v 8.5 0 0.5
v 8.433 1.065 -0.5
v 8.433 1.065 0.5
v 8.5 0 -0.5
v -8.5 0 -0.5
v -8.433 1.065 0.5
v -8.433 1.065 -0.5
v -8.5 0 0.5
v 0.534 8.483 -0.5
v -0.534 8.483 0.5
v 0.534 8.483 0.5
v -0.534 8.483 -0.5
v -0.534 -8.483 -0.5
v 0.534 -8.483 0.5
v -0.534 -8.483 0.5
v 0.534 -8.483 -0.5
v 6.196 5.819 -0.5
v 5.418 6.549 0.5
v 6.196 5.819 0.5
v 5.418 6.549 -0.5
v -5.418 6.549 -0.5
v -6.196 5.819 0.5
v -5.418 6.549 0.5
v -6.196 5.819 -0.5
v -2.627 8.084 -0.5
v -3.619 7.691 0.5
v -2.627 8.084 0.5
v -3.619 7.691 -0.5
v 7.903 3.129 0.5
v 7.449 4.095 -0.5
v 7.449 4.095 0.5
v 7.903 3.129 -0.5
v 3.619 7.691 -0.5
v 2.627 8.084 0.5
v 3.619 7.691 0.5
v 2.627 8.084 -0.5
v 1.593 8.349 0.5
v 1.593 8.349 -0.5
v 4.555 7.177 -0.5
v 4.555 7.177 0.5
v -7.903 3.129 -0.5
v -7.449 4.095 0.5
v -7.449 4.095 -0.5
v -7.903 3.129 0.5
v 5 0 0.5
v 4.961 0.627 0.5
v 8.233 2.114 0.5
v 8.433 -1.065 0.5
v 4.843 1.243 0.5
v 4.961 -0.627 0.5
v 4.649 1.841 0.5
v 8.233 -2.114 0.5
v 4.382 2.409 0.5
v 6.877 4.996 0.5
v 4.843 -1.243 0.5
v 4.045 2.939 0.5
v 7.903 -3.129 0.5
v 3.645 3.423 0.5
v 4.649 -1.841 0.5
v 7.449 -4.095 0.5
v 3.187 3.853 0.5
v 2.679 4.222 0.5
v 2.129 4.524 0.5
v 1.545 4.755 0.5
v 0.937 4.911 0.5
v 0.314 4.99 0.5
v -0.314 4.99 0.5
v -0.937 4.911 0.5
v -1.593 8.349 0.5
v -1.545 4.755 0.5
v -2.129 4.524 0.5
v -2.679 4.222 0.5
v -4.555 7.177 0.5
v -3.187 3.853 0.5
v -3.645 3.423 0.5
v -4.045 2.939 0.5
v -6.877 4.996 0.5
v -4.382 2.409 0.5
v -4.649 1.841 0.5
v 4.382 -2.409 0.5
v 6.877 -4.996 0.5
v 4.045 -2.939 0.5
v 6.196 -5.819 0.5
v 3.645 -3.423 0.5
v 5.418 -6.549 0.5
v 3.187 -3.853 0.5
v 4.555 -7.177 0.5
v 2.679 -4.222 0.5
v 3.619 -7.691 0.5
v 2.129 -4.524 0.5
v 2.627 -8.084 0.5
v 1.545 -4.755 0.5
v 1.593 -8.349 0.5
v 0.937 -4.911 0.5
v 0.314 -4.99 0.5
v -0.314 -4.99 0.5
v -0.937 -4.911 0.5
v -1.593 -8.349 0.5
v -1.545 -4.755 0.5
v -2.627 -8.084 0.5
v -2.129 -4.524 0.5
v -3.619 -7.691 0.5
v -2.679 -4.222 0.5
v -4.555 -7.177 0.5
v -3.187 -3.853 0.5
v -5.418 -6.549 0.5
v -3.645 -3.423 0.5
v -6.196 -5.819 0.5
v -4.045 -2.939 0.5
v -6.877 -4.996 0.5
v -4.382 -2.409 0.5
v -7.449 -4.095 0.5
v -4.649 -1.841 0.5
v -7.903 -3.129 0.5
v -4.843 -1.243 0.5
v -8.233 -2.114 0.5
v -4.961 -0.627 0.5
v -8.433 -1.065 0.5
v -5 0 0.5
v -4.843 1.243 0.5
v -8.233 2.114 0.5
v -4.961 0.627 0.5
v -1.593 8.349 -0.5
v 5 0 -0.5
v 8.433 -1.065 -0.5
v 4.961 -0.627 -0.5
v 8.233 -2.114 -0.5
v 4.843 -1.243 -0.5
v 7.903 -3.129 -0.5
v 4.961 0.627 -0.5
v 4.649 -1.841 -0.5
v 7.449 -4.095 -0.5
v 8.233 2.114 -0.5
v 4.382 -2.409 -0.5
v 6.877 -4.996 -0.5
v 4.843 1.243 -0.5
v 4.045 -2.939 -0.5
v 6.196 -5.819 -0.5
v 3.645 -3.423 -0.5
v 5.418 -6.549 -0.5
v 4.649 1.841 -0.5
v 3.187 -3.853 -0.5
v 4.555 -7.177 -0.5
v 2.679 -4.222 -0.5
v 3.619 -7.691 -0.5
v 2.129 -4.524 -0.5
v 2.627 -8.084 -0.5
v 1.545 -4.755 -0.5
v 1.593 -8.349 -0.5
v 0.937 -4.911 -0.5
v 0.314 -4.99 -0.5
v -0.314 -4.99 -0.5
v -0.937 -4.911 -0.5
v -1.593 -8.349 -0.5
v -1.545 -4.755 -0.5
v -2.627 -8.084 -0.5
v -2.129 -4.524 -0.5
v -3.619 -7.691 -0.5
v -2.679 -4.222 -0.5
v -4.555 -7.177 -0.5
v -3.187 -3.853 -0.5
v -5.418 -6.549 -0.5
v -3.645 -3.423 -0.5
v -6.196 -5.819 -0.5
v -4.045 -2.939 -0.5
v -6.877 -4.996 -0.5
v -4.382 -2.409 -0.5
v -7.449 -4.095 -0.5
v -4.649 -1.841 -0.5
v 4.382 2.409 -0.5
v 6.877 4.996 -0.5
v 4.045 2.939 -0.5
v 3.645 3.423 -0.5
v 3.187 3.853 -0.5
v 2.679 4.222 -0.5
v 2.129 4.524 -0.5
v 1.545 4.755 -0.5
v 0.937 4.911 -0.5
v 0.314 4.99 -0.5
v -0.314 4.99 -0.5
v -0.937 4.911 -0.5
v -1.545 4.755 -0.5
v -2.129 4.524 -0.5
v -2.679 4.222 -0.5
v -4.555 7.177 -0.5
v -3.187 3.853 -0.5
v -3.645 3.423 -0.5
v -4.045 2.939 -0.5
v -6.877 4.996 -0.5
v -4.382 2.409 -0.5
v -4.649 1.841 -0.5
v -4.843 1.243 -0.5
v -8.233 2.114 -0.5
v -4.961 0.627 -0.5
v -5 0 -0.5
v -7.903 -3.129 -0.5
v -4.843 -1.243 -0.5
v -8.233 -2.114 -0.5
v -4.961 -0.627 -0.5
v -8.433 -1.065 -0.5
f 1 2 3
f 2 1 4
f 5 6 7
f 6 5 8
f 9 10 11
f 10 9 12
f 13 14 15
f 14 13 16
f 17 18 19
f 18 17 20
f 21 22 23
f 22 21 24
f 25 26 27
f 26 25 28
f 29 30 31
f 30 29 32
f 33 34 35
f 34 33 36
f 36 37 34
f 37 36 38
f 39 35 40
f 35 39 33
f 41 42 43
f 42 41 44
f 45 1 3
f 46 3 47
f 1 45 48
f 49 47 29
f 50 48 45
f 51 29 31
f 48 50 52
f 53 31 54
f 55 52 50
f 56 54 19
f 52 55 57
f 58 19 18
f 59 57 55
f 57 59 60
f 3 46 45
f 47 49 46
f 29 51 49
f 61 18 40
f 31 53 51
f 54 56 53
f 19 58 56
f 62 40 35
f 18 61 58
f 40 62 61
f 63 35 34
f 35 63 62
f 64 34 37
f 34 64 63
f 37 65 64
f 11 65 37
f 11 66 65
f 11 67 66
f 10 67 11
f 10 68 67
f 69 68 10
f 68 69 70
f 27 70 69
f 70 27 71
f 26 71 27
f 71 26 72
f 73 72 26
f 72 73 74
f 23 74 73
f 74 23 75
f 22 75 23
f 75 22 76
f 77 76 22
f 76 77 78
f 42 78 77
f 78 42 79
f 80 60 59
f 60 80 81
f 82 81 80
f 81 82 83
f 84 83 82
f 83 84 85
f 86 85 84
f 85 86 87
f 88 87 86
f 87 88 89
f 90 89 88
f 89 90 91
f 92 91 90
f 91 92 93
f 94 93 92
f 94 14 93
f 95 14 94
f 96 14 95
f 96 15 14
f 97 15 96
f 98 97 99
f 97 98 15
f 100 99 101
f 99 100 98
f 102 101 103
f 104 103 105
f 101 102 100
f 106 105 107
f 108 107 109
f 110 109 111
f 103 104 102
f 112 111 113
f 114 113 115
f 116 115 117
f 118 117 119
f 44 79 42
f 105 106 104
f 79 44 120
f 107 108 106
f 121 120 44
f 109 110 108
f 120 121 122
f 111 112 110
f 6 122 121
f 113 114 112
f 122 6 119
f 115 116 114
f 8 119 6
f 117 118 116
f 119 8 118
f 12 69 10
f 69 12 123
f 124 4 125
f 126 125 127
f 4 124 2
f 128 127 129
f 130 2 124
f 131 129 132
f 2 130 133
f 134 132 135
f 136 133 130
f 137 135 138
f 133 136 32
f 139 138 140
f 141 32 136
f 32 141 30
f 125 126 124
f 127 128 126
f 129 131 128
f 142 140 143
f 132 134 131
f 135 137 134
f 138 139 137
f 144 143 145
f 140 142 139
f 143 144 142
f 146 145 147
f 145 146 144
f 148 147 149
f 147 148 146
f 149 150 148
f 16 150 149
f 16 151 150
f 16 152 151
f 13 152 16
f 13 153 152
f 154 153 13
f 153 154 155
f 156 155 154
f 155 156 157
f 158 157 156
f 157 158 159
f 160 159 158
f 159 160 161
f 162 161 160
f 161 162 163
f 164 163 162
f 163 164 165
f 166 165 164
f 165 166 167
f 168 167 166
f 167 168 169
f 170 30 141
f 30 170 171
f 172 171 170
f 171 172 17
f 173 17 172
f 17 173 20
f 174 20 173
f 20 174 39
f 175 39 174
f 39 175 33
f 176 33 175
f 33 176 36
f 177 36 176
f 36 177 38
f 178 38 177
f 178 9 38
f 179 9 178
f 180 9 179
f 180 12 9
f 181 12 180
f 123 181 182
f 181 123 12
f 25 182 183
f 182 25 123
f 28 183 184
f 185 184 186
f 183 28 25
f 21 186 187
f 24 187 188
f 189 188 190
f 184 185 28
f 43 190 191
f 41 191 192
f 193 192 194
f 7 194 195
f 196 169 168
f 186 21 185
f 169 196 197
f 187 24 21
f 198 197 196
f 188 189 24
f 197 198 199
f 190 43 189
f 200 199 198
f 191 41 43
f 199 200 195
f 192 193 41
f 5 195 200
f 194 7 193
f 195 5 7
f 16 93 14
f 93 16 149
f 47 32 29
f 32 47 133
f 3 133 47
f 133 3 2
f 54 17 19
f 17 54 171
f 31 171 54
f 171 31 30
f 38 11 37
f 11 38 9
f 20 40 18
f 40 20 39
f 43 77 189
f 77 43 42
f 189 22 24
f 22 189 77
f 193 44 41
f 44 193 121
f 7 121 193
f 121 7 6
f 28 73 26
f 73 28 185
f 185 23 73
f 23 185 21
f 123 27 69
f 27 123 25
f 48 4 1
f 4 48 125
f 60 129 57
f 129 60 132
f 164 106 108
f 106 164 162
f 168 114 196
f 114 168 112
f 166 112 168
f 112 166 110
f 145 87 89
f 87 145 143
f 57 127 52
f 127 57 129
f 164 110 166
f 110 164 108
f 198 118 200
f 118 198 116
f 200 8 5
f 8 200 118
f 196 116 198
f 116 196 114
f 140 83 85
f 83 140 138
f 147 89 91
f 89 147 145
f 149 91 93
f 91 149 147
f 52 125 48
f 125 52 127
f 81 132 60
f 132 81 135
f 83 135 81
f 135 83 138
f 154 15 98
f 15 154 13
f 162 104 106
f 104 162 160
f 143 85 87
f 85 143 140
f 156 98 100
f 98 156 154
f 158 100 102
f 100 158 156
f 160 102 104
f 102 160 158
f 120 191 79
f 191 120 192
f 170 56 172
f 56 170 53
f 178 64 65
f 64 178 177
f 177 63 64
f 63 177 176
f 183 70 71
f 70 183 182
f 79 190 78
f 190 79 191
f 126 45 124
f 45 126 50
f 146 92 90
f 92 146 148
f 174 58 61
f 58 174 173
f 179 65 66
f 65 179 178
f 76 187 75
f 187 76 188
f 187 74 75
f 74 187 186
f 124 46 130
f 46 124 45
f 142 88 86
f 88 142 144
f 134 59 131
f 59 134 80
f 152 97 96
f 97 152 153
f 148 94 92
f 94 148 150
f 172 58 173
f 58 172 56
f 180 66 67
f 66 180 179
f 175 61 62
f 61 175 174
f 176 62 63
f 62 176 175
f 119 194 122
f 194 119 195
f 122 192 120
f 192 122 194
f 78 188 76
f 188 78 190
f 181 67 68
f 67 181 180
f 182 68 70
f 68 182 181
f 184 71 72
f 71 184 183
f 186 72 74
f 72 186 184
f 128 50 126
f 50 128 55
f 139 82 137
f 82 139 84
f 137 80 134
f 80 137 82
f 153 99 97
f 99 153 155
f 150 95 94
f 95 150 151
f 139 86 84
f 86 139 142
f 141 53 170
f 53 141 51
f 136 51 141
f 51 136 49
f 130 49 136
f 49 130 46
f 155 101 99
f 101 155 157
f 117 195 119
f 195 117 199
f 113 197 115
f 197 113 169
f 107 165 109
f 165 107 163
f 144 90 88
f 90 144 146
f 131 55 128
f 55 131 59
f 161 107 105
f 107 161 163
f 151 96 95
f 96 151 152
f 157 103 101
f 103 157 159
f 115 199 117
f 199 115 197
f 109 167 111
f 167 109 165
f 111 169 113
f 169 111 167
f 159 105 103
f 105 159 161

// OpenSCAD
$fn = 50;


difference() {
	union() {
		translate(v = [0, 0, -0.5000000000]) {
			cylinder(h = 1, r = 8.5000000000);
		}
	}
	union() {
		translate(v = [0, 0, -100.0000000000]) {
			cylinder(h = 200, r = 5.0000000000);
		}
	}
}
